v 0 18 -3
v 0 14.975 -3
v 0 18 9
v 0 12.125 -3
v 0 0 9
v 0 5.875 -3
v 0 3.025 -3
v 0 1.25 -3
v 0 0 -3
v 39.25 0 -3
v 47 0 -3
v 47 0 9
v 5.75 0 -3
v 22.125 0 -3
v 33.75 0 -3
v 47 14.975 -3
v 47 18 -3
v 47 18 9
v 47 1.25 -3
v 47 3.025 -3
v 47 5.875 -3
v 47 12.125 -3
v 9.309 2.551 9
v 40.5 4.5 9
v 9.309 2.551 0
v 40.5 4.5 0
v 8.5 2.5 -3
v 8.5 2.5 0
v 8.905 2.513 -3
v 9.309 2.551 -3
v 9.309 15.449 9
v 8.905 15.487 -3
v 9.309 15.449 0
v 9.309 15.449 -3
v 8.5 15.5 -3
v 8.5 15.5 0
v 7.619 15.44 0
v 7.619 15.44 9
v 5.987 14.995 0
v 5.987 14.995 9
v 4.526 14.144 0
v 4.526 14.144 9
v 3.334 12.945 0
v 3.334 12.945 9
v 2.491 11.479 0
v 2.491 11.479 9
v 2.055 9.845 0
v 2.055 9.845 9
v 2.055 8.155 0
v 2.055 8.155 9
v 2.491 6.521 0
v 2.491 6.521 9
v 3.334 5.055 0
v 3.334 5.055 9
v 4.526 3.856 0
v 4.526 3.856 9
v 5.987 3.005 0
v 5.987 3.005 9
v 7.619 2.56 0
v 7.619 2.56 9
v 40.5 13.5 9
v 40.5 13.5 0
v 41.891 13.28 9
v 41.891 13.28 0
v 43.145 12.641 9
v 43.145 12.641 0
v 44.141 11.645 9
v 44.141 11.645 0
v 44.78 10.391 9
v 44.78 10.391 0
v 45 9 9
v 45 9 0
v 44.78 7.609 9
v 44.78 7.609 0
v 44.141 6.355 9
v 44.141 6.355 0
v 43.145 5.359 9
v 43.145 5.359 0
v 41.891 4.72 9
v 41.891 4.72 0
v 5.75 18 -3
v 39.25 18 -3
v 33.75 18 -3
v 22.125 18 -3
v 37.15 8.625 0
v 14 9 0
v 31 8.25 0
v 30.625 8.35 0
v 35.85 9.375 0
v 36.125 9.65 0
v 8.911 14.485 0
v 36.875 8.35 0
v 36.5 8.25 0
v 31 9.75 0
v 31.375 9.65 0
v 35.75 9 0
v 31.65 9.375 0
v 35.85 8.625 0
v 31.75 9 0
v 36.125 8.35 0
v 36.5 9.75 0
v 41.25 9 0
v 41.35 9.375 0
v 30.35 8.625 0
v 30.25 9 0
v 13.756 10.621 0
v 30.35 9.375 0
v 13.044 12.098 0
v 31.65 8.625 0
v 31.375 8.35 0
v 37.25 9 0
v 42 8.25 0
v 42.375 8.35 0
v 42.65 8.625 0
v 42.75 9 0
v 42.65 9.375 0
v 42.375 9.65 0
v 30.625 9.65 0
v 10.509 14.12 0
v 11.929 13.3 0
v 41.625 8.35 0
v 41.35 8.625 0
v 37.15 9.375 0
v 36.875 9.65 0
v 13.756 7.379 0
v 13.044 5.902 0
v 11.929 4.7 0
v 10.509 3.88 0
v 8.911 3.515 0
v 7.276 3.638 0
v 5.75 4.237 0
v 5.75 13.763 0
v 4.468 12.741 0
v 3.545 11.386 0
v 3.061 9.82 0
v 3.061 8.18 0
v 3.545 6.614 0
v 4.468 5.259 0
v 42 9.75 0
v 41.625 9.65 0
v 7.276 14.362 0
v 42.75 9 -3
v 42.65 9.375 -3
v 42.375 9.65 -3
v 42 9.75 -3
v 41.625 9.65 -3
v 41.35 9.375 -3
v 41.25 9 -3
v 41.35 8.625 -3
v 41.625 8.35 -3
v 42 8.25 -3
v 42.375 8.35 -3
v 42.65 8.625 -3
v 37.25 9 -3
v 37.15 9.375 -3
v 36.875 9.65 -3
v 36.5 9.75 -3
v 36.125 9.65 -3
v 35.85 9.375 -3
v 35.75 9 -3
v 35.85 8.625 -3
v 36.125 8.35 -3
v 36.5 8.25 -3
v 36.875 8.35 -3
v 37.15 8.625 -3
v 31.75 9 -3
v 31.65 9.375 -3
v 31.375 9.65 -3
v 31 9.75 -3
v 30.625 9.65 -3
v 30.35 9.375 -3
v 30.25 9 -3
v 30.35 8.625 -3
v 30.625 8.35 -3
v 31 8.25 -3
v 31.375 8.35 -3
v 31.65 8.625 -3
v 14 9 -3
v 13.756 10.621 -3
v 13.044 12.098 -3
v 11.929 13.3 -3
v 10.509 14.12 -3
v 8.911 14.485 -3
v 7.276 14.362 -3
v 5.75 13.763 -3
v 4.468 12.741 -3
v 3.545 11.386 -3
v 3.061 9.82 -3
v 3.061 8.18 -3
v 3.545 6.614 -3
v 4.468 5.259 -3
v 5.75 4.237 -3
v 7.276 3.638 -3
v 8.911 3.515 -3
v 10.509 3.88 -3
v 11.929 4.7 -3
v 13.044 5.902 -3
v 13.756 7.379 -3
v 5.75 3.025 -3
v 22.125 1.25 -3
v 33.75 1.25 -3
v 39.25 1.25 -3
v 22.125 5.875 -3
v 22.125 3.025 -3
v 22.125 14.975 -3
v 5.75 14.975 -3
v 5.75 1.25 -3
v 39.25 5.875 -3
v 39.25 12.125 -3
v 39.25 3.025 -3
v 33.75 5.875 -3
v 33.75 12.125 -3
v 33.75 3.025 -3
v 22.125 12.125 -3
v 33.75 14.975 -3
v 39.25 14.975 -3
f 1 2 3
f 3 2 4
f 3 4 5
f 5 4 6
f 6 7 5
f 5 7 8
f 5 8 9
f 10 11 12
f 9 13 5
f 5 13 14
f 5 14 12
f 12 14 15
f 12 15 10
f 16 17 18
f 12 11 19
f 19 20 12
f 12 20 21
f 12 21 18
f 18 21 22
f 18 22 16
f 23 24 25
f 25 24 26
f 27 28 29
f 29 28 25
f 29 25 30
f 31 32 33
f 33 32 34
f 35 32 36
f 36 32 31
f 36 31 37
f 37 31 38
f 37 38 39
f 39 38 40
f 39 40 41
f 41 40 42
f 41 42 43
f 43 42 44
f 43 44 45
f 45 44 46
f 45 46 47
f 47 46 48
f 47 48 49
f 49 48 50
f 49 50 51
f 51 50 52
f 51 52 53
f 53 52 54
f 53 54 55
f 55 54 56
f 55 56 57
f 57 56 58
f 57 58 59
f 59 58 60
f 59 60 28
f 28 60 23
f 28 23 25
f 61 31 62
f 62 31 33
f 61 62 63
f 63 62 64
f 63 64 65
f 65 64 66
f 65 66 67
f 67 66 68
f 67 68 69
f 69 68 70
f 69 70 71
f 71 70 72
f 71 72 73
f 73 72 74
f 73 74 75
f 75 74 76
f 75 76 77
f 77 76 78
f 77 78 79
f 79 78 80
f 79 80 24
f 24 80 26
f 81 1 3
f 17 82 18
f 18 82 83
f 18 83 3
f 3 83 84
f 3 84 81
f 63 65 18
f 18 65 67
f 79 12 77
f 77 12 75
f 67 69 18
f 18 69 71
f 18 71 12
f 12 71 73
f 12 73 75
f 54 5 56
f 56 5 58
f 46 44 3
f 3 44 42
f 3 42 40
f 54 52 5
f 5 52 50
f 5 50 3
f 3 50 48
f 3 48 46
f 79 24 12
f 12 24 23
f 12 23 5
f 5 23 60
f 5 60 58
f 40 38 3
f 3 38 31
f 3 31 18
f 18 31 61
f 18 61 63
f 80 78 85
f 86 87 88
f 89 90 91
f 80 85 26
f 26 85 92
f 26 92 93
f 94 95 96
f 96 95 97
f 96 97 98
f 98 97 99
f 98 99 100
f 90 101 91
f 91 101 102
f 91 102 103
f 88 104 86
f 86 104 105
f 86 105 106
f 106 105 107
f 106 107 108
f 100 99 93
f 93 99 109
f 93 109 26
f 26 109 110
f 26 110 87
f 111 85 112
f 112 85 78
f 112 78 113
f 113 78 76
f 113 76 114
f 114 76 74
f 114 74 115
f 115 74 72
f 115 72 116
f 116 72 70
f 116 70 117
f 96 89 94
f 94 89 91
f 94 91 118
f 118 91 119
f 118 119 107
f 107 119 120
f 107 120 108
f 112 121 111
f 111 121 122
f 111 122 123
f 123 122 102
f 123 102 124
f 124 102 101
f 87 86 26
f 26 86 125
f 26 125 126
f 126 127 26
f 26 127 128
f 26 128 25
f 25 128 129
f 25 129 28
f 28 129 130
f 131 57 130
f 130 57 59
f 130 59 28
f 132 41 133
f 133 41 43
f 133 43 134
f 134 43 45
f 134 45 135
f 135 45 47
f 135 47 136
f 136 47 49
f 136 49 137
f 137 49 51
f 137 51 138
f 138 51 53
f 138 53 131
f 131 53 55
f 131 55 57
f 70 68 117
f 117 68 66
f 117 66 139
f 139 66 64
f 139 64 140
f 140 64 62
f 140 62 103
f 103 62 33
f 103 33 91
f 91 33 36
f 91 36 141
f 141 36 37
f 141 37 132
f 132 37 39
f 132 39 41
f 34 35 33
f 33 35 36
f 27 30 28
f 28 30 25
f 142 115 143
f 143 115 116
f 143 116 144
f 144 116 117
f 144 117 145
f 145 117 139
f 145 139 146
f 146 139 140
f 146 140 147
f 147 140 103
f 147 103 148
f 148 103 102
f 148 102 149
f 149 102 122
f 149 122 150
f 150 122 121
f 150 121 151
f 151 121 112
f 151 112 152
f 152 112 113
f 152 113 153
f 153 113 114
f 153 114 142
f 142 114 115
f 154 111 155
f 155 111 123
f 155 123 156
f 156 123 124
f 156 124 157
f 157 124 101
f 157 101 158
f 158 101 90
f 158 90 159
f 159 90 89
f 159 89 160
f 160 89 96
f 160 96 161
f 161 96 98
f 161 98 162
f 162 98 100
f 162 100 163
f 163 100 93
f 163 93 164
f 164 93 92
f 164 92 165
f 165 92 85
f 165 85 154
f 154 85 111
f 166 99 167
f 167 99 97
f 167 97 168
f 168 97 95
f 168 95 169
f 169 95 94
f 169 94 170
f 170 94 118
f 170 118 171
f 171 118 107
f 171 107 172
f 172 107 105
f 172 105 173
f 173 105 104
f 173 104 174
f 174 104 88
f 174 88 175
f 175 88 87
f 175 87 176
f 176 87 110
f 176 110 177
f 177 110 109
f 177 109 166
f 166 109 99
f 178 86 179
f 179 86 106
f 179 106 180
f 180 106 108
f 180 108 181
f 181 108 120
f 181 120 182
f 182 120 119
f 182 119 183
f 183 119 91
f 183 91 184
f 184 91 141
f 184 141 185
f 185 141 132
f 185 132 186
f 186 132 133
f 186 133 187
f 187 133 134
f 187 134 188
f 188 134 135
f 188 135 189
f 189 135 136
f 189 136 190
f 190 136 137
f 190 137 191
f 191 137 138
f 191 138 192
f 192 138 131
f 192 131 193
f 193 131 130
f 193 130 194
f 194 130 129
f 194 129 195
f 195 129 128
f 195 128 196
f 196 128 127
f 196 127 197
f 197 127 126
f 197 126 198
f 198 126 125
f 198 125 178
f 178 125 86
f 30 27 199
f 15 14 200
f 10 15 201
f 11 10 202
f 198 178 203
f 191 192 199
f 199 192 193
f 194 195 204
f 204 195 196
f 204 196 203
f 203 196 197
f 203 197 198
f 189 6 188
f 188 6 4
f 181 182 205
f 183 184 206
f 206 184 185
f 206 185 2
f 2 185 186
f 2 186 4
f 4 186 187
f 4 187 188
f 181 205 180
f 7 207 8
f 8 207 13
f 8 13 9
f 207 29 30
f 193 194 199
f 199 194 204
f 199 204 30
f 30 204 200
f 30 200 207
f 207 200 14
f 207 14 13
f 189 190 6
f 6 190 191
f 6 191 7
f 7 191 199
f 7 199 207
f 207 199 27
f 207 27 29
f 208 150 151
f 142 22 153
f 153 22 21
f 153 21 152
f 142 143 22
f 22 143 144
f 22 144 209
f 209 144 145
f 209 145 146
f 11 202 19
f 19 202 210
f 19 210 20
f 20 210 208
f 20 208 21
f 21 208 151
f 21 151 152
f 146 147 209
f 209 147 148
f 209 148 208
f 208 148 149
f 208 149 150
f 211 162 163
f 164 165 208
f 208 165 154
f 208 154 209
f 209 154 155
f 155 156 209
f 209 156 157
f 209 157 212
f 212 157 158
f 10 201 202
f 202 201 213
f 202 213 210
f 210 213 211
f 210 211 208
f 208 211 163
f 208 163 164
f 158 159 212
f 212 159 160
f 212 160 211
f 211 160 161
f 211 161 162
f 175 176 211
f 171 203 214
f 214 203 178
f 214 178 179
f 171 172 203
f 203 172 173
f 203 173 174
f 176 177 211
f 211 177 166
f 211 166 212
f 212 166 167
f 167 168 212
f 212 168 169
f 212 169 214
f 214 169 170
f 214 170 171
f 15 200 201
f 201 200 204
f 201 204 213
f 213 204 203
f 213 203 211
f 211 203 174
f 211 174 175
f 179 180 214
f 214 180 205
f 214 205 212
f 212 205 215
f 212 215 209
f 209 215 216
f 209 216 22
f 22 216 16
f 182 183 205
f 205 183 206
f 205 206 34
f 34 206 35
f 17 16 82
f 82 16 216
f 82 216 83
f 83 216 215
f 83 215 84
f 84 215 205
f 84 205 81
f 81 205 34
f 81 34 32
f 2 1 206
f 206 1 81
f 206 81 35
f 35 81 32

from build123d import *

# Parameters (mm, degrees)
BOSS_EXTRU_1_DEPTH = 9
BOSS_EXTRU_2_START = -3
ESQUISSE2_W        = 47
ESQUISSE2_H        = 18
ESQUISSE2_R        = 0.75
ESQUISSE2_R_2      = 5.5
BOSS_EXTRU_2_DEPTH = 3


with BuildPart() as part:
    # Esquisse1 → Boss.-Extru.1 (new body)
    with BuildSketch(Plane.XY):
        with BuildLine():
            Line((0, 18), (0, 9))
            Line((0, 9), (2, 9))
            ThreePointArc((2, 9), (3.903805922, 13.596194078), (8.5, 15.5))
            ThreePointArc((8.5, 15.5), (8.90545886, 15.48734176), (9.309338521, 15.449416342))
            Line((9.309338521, 15.449416342), (40.5, 13.5))
            ThreePointArc((40.5, 13.5), (43.681980515, 12.181980515), (45, 9))
            Line((45, 9), (47, 9))
            Line((47, 9), (47, 18))
            Line((47, 18), (0, 18))
        make_face()
        with BuildLine():
            Line((0, 9), (0, 0))
            Line((0, 0), (47, 0))
            Line((47, 0), (47, 9))
            Line((47, 9), (45, 9))
            ThreePointArc((45, 9), (43.681980515, 5.818019485), (40.5, 4.5))
            Line((40.5, 4.5), (9.309338521, 2.550583658))
            ThreePointArc((9.309338521, 2.550583658), (8.90545886, 2.51265824), (8.5, 2.5))
            ThreePointArc((8.5, 2.5), (3.903805922, 4.403805922), (2, 9))
            Line((2, 9), (0, 9))
        make_face()
    extrude(amount=BOSS_EXTRU_1_DEPTH)

    # Esquisse2 → Boss.-Extru.2 (add)
    with BuildSketch(Plane.XY.offset(BOSS_EXTRU_2_START)):
        with Locations((23.5, 9)):
            Rectangle(ESQUISSE2_W, ESQUISSE2_H)
        with BuildLine():
            Line((8.5, 2.5), (9.309338521, 2.550583658))
            ThreePointArc((9.309338521, 2.550583658), (8.90545886, 2.51265824), (8.5, 2.5))
        make_face(mode=Mode.SUBTRACT)
        with Locations((36.5, 9)):
            Circle(ESQUISSE2_R, mode=Mode.SUBTRACT)
        with Locations((31, 9)):
            Circle(ESQUISSE2_R, mode=Mode.SUBTRACT)
        with Locations((8.5, 9)):
            Circle(ESQUISSE2_R_2, mode=Mode.SUBTRACT)
        with BuildLine():
            Line((9.309338521, 15.449416342), (8.5, 15.5))
            ThreePointArc((8.5, 15.5), (8.90545886, 15.48734176), (9.309338521, 15.449416342))
        make_face(mode=Mode.SUBTRACT)
        with Locations((42, 9)):
            Circle(ESQUISSE2_R, mode=Mode.SUBTRACT)
    extrude(amount=BOSS_EXTRU_2_DEPTH)


solid = part.part
